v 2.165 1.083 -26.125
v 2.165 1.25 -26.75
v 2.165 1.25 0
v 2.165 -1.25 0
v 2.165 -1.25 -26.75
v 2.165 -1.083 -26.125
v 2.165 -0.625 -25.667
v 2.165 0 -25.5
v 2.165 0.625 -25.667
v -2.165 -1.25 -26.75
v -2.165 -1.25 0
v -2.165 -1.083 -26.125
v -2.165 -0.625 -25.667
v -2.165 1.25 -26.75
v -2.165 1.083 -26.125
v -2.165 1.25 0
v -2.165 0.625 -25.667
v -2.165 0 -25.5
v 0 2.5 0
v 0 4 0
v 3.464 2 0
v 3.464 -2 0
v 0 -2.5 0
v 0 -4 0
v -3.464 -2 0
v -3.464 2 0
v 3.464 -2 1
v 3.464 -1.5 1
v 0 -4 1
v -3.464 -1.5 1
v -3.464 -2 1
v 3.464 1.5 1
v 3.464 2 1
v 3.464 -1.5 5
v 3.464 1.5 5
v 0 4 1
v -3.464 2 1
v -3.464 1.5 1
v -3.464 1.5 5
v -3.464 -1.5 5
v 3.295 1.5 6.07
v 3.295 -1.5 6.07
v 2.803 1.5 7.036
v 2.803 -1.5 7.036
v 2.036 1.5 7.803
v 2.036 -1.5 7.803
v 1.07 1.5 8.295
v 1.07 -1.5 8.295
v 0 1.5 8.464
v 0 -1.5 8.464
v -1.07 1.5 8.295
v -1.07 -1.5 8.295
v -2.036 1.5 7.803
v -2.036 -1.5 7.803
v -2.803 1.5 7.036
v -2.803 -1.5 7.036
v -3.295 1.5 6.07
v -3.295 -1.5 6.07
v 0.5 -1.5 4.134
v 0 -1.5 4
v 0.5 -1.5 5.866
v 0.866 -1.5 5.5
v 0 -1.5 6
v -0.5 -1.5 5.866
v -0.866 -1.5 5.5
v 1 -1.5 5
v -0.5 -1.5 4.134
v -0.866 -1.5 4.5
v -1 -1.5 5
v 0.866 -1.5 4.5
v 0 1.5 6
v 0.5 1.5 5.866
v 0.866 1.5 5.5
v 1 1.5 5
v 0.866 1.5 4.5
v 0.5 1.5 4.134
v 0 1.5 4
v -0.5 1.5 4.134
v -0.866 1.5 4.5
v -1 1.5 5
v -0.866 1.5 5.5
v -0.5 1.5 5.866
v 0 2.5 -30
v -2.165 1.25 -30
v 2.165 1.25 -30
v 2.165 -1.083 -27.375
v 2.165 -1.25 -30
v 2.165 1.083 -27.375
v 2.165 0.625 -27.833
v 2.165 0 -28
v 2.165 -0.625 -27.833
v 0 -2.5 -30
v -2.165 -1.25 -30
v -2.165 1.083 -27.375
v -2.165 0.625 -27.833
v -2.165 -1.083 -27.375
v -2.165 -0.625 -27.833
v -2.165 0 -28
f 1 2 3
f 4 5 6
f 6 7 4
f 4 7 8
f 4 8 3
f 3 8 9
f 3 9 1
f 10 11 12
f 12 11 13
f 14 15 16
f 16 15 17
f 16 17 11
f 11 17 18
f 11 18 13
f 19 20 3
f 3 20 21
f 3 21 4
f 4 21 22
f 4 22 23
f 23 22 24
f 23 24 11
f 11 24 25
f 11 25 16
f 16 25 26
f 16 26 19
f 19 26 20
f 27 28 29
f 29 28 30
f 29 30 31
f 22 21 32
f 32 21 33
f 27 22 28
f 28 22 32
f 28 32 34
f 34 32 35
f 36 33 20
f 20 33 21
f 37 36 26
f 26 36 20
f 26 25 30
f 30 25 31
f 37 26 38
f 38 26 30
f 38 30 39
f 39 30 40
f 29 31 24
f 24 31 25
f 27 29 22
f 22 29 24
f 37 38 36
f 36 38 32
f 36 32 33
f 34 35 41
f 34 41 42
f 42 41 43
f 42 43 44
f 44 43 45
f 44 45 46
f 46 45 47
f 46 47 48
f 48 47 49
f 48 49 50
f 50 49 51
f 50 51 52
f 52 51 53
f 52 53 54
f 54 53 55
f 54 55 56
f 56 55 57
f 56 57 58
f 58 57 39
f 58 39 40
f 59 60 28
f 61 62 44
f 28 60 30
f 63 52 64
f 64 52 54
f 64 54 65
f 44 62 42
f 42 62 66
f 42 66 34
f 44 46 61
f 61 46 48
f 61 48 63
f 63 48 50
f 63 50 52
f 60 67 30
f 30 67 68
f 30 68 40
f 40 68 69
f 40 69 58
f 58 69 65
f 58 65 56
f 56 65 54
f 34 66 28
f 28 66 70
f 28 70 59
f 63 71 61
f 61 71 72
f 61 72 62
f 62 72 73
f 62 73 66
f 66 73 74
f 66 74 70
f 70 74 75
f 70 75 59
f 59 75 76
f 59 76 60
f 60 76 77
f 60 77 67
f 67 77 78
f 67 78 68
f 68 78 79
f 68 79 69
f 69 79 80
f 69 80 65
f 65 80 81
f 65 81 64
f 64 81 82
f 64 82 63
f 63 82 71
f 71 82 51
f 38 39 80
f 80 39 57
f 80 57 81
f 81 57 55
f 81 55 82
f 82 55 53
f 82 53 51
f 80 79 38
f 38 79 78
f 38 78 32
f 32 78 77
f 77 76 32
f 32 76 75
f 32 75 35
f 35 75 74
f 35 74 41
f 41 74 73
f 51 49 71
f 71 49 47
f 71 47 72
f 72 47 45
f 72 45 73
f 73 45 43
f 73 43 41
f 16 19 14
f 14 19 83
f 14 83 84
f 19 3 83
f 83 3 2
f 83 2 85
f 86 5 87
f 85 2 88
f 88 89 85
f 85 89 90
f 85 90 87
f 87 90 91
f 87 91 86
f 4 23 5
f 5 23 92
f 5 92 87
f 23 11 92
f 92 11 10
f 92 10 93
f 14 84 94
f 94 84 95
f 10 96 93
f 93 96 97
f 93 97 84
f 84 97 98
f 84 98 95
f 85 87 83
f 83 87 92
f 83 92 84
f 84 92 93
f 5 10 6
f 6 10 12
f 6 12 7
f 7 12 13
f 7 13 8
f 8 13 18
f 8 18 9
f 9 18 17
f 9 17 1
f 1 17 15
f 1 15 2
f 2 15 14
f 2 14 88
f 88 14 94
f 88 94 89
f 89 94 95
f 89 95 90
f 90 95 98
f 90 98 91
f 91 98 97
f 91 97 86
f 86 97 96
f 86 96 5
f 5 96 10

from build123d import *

# Parameters (mm, degrees)
EXTRUDE_1_DEPTH      = 1
SKETCH_2_R           = 1
EXTRUDE_3_DEPTH      = 1.5
EXTRUDE_3_DEPTH_BACK = 1.5
EXTRUDE_4_DEPTH      = 30
SKETCH_4_R           = 1.25
CUT_EXTRUDE_1_DEPTH  = 4.330127


with BuildPart() as part:
    # 스케치1 → 보스-돌출1 (new body)
    with BuildSketch(Plane.XY):
        Polygon((0, 4), (-3.464101615, 2), (-3.464101615, -2), (0, -4), (3.464101615, -2), (3.464101615, 2), align=None)
    extrude(amount=EXTRUDE_1_DEPTH)

    # 스케치2 → 보스-돌출3 (add, two sides)
    with BuildSketch(Plane(origin=(0, 0, 0), x_dir=(1, 0, 0), z_dir=(0, 1, 0))) as extrude_3_sk:
        with BuildLine():
            Line((-3.464101615, -1), (3.464101615, -1))
            Line((3.464101615, -1), (3.464101615, -5))
            ThreePointArc((3.464101615, -5), (0, -8.464101615), (-3.464101615, -5))
            Line((-3.464101615, -5), (-3.464101615, -1))
        make_face()
        with Locations((0, -5)):
            Circle(SKETCH_2_R, mode=Mode.SUBTRACT)
    extrude(amount=EXTRUDE_3_DEPTH)
    extrude(extrude_3_sk.sketch, amount=-EXTRUDE_3_DEPTH_BACK)

    # 스케치3 → 보스-돌출4 (add)
    with BuildSketch(Plane(origin=(0, 0, 0), x_dir=(-1, 0, 0), z_dir=(0, 0, -1))):
        Polygon((0, 2.5), (-2.165063509, 1.25), (-2.165063509, -1.25), (0, -2.5), (2.165063509, -1.25), (2.165063509, 1.25), align=None)
    extrude(amount=EXTRUDE_4_DEPTH)

    # 스케치4 → 컷-돌출1 (cut)
    with BuildSketch(Plane.ZY.offset(2.165063509)):
        with Locations((-26.75, 0)):
            Circle(SKETCH_4_R)
    extrude(amount=-CUT_EXTRUDE_1_DEPTH, mode=Mode.SUBTRACT)


solid = part.part
